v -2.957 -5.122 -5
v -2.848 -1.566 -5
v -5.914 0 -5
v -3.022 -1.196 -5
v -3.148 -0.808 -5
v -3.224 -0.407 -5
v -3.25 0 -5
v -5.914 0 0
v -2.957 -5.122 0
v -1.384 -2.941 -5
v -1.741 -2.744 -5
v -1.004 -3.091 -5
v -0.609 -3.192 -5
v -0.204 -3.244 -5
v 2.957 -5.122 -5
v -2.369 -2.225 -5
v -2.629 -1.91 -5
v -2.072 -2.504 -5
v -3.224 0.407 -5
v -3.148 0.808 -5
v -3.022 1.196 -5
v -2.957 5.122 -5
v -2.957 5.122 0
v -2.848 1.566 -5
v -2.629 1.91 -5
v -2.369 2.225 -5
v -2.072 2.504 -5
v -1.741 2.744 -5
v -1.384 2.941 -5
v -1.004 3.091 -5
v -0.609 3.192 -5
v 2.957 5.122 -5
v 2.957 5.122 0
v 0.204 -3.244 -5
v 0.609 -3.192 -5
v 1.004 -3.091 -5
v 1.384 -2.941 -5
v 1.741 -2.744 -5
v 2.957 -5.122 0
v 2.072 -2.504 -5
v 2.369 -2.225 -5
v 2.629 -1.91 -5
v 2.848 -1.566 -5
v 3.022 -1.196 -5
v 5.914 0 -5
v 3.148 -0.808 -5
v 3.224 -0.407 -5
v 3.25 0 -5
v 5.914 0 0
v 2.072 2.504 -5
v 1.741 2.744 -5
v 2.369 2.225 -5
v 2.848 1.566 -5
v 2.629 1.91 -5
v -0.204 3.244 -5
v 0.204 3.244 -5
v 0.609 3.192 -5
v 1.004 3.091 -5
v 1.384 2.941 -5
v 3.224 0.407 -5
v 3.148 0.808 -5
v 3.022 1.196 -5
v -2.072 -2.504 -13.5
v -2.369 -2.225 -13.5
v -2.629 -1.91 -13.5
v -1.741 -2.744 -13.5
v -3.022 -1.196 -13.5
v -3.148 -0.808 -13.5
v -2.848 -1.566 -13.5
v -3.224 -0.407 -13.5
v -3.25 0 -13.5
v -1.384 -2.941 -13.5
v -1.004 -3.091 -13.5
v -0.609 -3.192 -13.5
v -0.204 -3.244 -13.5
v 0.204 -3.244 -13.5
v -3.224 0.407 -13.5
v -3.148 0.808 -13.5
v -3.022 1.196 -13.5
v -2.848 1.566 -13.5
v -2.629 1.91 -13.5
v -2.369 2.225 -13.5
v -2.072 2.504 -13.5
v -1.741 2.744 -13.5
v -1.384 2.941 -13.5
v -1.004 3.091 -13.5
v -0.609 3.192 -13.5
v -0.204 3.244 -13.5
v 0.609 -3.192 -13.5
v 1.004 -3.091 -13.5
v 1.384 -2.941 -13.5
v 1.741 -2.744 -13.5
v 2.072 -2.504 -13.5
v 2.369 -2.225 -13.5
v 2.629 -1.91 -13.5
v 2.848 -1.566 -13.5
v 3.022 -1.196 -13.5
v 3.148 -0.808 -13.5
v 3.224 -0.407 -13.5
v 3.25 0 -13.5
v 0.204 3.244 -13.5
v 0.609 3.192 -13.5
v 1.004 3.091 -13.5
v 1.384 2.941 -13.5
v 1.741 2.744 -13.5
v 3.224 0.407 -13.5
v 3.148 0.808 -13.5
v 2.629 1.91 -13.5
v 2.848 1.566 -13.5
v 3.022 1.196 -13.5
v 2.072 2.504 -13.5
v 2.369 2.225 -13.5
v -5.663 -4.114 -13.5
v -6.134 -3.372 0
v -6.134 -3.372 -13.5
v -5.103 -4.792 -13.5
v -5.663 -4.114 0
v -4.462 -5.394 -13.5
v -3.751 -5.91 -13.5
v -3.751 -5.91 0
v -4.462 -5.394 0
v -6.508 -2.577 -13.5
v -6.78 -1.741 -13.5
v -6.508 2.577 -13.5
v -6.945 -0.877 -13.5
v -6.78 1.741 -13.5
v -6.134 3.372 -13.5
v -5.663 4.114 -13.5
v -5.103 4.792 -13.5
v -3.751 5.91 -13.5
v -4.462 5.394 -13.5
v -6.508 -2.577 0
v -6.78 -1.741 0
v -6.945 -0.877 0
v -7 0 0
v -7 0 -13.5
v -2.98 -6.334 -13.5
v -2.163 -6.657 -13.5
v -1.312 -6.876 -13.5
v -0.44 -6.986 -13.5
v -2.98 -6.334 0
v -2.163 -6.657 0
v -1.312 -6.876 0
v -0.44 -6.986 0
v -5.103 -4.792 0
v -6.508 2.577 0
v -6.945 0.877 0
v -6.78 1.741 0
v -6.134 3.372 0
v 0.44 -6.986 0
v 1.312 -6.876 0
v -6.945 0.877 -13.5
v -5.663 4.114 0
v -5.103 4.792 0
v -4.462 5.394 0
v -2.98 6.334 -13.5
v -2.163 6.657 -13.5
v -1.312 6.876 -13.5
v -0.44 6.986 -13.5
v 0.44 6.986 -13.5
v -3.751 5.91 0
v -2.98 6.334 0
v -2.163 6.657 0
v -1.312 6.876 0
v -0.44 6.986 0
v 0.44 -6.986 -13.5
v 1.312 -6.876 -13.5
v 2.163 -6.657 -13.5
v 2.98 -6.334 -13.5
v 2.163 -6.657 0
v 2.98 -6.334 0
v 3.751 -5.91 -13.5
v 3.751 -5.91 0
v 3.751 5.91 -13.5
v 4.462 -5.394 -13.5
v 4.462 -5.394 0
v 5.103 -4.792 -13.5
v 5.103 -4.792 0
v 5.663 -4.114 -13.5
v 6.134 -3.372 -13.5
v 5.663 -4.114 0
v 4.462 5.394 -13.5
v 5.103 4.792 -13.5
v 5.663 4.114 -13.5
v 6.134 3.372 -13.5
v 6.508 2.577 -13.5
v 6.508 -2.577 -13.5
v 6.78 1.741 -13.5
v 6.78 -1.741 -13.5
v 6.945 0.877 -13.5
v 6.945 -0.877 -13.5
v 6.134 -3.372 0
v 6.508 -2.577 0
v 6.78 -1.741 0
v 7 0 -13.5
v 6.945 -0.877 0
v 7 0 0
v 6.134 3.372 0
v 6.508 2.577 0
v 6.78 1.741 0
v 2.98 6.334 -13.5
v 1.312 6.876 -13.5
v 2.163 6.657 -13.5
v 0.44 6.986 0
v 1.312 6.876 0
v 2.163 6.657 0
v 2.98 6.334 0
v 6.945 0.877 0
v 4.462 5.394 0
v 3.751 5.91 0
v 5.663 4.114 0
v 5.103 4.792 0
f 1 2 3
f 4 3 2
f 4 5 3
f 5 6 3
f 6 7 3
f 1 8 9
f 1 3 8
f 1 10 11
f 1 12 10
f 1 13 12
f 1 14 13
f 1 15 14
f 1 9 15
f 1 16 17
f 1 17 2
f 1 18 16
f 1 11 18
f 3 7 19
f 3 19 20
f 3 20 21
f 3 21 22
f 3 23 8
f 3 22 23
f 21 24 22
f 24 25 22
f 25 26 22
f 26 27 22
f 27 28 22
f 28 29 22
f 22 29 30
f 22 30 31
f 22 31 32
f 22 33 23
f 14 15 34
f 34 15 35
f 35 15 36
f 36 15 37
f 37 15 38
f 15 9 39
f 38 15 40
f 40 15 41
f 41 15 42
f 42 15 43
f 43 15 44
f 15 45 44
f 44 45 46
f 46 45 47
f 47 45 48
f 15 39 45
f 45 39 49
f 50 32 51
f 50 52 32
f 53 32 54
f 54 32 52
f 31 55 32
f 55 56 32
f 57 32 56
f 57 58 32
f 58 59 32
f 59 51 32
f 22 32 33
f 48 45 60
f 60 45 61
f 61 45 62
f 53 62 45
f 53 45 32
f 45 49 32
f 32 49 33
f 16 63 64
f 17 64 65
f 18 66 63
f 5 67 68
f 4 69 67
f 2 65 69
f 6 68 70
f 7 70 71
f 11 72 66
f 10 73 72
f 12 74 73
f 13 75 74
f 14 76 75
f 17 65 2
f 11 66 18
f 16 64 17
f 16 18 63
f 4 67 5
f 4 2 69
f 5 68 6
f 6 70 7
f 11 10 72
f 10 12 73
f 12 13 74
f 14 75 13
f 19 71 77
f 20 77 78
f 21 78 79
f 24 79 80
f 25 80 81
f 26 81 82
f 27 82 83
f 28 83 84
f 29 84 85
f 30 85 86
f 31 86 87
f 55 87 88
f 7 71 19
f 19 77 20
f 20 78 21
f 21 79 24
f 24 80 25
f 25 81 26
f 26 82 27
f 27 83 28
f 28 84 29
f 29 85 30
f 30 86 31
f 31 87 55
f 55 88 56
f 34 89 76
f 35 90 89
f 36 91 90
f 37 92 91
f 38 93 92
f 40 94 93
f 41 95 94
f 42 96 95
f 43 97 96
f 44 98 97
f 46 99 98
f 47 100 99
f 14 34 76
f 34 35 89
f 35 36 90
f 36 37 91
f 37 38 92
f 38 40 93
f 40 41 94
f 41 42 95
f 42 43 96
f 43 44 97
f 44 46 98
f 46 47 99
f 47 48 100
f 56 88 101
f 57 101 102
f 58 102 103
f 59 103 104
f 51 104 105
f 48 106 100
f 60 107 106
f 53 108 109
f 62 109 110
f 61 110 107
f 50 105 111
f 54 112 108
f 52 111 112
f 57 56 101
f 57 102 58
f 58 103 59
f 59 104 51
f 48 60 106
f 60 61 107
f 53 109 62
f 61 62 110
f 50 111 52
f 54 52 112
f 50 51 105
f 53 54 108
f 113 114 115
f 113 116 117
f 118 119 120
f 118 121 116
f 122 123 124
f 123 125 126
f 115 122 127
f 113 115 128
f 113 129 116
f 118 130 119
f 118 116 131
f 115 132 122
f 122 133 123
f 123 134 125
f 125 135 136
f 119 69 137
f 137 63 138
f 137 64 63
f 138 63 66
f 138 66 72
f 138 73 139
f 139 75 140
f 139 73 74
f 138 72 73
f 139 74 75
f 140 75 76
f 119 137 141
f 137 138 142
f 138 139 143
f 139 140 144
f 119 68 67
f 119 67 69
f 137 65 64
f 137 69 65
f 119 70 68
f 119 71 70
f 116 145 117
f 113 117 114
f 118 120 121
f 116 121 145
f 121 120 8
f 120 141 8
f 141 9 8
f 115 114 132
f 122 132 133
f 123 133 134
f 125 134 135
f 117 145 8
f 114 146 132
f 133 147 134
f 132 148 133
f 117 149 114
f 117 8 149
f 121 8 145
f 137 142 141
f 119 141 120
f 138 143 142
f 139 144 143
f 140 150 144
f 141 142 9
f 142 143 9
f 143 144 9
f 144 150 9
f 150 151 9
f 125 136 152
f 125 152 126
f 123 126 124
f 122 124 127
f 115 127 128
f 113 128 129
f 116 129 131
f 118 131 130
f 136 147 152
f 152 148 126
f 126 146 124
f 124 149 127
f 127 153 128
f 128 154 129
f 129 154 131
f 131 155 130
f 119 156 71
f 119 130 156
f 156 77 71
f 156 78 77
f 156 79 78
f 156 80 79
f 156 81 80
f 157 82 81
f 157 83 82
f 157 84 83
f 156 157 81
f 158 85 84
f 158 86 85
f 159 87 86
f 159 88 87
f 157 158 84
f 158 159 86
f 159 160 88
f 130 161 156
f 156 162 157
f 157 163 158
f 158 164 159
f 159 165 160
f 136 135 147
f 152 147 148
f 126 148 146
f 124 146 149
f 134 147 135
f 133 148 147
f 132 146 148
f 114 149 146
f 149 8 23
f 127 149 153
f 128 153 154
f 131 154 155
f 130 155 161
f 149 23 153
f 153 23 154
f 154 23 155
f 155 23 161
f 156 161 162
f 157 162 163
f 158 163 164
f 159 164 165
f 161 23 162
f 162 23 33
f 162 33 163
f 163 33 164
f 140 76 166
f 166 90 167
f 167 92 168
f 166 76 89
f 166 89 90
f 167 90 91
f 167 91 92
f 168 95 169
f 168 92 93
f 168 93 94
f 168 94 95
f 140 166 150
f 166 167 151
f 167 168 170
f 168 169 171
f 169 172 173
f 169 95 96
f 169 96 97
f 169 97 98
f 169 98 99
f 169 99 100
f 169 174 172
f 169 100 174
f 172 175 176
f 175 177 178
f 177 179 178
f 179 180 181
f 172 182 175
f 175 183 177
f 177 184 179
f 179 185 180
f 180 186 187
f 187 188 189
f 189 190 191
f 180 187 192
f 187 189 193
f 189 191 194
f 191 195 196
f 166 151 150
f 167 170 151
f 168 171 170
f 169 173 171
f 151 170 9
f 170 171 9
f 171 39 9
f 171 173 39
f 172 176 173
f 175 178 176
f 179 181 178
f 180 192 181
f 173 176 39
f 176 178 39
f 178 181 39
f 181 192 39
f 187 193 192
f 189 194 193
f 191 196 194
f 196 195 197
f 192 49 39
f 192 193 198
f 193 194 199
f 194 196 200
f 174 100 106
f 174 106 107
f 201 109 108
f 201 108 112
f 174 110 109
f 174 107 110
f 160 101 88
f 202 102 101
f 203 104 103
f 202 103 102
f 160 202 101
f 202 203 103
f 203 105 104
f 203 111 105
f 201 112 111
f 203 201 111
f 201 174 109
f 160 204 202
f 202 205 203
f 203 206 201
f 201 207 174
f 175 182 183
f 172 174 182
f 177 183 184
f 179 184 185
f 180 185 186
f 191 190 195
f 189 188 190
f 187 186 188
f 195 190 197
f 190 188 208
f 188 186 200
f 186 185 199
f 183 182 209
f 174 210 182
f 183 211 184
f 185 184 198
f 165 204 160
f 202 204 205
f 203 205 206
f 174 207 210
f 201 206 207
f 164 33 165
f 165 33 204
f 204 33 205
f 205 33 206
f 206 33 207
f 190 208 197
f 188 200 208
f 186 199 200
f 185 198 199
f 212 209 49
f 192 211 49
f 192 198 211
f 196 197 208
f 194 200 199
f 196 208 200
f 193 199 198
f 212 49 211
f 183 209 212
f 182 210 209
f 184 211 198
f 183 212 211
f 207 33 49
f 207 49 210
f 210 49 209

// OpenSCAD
$fn = 50;

difference() {
	union() {
		translate(v = [0, 0, -13.5]) {
			cylinder(h = 13.5, r = 7.0);
		}
	}
	union() {
		translate(v = [0, 0, 0]) {
			rotate(a = [0, 0, 0]) {
				difference() {
					union() {
						translate(v = [0, 0, -5]) {
							linear_extrude(height = 5) {
								polygon(points = [[5.914249999999999, 0.0], [2.957125, 5.1218907443321156], [-2.9571249999999982, 5.1218907443321156], [-5.914249999999999, 7.242867331857232e-16], [-2.9571250000000022, -5.121890744332115], [2.9571249999999956, -5.121890744332118]]);
							}
						}
					}
					union();
				}
			}
		}
		#translate(v = [0, 0, -100.0]) {
			cylinder(h = 200, r = 3.25);
		}
	}
}
